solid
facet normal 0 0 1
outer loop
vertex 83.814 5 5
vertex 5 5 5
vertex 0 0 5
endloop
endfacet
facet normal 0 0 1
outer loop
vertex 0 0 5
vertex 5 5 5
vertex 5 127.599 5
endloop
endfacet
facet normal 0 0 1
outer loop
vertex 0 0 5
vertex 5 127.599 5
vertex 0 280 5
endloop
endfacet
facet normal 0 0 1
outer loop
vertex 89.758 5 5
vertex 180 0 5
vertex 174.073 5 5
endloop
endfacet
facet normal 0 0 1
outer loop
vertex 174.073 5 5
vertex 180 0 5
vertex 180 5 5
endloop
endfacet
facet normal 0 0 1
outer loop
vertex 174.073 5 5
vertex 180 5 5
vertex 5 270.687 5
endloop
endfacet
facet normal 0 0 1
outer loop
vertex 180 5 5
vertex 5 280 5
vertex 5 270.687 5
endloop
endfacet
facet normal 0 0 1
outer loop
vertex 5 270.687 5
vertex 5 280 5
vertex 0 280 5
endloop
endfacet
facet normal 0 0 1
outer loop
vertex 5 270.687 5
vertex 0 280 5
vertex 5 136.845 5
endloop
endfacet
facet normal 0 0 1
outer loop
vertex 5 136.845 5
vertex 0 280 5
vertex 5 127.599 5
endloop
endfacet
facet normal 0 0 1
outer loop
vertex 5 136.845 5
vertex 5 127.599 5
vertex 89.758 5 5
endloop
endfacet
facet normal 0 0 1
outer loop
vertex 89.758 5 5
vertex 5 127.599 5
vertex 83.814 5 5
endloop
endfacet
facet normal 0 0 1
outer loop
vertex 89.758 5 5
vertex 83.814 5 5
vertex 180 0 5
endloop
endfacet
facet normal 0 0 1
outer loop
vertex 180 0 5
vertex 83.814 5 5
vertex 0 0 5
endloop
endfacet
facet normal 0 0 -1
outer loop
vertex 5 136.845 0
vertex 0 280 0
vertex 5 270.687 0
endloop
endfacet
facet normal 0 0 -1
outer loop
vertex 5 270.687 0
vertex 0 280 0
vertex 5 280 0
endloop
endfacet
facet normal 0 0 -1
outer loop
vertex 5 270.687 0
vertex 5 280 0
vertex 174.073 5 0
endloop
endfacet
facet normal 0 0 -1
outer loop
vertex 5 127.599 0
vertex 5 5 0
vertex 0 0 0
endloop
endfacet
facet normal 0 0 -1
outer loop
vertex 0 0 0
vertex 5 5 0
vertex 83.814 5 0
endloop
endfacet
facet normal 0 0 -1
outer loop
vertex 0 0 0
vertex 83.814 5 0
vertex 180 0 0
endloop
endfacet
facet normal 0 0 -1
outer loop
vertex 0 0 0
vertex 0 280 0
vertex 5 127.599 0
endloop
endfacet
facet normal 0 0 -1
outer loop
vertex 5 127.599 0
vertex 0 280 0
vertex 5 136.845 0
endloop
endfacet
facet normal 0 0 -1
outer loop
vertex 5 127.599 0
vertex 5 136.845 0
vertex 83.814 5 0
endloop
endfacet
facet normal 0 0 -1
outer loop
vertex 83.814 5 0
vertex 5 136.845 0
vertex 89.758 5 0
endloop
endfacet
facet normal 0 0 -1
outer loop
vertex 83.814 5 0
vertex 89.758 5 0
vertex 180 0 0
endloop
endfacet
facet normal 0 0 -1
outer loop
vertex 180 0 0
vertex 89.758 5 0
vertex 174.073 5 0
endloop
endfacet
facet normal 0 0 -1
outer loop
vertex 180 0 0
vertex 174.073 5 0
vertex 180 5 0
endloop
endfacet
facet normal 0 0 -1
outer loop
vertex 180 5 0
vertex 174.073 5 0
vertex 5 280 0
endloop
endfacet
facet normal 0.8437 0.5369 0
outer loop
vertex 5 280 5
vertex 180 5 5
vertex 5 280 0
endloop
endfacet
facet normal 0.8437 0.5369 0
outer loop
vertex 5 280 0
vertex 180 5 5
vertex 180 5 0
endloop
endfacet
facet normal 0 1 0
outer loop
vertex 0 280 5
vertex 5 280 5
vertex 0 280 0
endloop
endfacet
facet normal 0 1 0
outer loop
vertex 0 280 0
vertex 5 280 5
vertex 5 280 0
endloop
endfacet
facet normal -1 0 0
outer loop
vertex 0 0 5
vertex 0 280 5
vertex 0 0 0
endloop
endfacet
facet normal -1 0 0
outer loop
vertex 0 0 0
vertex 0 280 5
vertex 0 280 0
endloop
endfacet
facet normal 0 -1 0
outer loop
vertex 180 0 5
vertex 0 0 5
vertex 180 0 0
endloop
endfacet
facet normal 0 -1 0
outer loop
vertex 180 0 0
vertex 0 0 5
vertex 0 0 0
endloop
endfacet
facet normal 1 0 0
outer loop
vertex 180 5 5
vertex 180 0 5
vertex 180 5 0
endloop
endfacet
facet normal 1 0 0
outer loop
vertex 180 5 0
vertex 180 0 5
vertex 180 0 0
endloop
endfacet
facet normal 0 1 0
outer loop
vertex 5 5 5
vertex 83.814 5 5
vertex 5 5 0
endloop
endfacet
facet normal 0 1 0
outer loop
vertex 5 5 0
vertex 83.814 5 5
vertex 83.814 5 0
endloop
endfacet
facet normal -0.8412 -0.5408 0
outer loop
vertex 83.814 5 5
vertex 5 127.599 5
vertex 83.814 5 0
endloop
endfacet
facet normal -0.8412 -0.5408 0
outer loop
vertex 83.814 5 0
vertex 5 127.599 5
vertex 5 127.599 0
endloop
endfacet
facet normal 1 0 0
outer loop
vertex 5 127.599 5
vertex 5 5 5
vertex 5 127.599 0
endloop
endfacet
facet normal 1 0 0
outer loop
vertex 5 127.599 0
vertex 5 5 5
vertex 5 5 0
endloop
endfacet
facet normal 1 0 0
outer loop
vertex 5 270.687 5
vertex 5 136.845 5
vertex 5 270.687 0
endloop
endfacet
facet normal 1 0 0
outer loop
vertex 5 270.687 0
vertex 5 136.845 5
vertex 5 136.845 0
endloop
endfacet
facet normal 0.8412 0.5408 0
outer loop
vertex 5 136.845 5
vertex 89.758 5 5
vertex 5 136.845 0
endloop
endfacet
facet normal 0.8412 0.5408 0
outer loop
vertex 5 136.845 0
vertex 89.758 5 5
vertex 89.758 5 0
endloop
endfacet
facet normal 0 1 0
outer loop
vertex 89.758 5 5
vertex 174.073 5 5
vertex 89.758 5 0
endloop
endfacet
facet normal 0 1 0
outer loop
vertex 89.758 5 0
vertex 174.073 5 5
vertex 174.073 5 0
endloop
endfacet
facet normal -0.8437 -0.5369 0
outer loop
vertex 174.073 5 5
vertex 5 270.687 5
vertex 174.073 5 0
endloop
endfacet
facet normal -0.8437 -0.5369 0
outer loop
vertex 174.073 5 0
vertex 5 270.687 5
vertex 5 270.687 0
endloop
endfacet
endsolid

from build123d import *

# Parameters (mm, degrees)
BOSS_EXTRUDE1_DEPTH = 5


with BuildPart() as part:
    # Sketch1 → Boss-Extrude1 (new body)
    with BuildSketch(Plane.XY):
        Polygon((0, 0), (0, 280), (5, 280), (180, 5), (180, 0), align=None)
        Polygon((89.757735174, 5), (174.073452359, 5), (5, 270.686853707), (5, 136.845365827), align=None, mode=Mode.SUBTRACT)
        Polygon((5, 5), (5, 127.599078617), (83.813693397, 5), align=None, mode=Mode.SUBTRACT)
    extrude(amount=BOSS_EXTRUDE1_DEPTH)


solid = part.part
